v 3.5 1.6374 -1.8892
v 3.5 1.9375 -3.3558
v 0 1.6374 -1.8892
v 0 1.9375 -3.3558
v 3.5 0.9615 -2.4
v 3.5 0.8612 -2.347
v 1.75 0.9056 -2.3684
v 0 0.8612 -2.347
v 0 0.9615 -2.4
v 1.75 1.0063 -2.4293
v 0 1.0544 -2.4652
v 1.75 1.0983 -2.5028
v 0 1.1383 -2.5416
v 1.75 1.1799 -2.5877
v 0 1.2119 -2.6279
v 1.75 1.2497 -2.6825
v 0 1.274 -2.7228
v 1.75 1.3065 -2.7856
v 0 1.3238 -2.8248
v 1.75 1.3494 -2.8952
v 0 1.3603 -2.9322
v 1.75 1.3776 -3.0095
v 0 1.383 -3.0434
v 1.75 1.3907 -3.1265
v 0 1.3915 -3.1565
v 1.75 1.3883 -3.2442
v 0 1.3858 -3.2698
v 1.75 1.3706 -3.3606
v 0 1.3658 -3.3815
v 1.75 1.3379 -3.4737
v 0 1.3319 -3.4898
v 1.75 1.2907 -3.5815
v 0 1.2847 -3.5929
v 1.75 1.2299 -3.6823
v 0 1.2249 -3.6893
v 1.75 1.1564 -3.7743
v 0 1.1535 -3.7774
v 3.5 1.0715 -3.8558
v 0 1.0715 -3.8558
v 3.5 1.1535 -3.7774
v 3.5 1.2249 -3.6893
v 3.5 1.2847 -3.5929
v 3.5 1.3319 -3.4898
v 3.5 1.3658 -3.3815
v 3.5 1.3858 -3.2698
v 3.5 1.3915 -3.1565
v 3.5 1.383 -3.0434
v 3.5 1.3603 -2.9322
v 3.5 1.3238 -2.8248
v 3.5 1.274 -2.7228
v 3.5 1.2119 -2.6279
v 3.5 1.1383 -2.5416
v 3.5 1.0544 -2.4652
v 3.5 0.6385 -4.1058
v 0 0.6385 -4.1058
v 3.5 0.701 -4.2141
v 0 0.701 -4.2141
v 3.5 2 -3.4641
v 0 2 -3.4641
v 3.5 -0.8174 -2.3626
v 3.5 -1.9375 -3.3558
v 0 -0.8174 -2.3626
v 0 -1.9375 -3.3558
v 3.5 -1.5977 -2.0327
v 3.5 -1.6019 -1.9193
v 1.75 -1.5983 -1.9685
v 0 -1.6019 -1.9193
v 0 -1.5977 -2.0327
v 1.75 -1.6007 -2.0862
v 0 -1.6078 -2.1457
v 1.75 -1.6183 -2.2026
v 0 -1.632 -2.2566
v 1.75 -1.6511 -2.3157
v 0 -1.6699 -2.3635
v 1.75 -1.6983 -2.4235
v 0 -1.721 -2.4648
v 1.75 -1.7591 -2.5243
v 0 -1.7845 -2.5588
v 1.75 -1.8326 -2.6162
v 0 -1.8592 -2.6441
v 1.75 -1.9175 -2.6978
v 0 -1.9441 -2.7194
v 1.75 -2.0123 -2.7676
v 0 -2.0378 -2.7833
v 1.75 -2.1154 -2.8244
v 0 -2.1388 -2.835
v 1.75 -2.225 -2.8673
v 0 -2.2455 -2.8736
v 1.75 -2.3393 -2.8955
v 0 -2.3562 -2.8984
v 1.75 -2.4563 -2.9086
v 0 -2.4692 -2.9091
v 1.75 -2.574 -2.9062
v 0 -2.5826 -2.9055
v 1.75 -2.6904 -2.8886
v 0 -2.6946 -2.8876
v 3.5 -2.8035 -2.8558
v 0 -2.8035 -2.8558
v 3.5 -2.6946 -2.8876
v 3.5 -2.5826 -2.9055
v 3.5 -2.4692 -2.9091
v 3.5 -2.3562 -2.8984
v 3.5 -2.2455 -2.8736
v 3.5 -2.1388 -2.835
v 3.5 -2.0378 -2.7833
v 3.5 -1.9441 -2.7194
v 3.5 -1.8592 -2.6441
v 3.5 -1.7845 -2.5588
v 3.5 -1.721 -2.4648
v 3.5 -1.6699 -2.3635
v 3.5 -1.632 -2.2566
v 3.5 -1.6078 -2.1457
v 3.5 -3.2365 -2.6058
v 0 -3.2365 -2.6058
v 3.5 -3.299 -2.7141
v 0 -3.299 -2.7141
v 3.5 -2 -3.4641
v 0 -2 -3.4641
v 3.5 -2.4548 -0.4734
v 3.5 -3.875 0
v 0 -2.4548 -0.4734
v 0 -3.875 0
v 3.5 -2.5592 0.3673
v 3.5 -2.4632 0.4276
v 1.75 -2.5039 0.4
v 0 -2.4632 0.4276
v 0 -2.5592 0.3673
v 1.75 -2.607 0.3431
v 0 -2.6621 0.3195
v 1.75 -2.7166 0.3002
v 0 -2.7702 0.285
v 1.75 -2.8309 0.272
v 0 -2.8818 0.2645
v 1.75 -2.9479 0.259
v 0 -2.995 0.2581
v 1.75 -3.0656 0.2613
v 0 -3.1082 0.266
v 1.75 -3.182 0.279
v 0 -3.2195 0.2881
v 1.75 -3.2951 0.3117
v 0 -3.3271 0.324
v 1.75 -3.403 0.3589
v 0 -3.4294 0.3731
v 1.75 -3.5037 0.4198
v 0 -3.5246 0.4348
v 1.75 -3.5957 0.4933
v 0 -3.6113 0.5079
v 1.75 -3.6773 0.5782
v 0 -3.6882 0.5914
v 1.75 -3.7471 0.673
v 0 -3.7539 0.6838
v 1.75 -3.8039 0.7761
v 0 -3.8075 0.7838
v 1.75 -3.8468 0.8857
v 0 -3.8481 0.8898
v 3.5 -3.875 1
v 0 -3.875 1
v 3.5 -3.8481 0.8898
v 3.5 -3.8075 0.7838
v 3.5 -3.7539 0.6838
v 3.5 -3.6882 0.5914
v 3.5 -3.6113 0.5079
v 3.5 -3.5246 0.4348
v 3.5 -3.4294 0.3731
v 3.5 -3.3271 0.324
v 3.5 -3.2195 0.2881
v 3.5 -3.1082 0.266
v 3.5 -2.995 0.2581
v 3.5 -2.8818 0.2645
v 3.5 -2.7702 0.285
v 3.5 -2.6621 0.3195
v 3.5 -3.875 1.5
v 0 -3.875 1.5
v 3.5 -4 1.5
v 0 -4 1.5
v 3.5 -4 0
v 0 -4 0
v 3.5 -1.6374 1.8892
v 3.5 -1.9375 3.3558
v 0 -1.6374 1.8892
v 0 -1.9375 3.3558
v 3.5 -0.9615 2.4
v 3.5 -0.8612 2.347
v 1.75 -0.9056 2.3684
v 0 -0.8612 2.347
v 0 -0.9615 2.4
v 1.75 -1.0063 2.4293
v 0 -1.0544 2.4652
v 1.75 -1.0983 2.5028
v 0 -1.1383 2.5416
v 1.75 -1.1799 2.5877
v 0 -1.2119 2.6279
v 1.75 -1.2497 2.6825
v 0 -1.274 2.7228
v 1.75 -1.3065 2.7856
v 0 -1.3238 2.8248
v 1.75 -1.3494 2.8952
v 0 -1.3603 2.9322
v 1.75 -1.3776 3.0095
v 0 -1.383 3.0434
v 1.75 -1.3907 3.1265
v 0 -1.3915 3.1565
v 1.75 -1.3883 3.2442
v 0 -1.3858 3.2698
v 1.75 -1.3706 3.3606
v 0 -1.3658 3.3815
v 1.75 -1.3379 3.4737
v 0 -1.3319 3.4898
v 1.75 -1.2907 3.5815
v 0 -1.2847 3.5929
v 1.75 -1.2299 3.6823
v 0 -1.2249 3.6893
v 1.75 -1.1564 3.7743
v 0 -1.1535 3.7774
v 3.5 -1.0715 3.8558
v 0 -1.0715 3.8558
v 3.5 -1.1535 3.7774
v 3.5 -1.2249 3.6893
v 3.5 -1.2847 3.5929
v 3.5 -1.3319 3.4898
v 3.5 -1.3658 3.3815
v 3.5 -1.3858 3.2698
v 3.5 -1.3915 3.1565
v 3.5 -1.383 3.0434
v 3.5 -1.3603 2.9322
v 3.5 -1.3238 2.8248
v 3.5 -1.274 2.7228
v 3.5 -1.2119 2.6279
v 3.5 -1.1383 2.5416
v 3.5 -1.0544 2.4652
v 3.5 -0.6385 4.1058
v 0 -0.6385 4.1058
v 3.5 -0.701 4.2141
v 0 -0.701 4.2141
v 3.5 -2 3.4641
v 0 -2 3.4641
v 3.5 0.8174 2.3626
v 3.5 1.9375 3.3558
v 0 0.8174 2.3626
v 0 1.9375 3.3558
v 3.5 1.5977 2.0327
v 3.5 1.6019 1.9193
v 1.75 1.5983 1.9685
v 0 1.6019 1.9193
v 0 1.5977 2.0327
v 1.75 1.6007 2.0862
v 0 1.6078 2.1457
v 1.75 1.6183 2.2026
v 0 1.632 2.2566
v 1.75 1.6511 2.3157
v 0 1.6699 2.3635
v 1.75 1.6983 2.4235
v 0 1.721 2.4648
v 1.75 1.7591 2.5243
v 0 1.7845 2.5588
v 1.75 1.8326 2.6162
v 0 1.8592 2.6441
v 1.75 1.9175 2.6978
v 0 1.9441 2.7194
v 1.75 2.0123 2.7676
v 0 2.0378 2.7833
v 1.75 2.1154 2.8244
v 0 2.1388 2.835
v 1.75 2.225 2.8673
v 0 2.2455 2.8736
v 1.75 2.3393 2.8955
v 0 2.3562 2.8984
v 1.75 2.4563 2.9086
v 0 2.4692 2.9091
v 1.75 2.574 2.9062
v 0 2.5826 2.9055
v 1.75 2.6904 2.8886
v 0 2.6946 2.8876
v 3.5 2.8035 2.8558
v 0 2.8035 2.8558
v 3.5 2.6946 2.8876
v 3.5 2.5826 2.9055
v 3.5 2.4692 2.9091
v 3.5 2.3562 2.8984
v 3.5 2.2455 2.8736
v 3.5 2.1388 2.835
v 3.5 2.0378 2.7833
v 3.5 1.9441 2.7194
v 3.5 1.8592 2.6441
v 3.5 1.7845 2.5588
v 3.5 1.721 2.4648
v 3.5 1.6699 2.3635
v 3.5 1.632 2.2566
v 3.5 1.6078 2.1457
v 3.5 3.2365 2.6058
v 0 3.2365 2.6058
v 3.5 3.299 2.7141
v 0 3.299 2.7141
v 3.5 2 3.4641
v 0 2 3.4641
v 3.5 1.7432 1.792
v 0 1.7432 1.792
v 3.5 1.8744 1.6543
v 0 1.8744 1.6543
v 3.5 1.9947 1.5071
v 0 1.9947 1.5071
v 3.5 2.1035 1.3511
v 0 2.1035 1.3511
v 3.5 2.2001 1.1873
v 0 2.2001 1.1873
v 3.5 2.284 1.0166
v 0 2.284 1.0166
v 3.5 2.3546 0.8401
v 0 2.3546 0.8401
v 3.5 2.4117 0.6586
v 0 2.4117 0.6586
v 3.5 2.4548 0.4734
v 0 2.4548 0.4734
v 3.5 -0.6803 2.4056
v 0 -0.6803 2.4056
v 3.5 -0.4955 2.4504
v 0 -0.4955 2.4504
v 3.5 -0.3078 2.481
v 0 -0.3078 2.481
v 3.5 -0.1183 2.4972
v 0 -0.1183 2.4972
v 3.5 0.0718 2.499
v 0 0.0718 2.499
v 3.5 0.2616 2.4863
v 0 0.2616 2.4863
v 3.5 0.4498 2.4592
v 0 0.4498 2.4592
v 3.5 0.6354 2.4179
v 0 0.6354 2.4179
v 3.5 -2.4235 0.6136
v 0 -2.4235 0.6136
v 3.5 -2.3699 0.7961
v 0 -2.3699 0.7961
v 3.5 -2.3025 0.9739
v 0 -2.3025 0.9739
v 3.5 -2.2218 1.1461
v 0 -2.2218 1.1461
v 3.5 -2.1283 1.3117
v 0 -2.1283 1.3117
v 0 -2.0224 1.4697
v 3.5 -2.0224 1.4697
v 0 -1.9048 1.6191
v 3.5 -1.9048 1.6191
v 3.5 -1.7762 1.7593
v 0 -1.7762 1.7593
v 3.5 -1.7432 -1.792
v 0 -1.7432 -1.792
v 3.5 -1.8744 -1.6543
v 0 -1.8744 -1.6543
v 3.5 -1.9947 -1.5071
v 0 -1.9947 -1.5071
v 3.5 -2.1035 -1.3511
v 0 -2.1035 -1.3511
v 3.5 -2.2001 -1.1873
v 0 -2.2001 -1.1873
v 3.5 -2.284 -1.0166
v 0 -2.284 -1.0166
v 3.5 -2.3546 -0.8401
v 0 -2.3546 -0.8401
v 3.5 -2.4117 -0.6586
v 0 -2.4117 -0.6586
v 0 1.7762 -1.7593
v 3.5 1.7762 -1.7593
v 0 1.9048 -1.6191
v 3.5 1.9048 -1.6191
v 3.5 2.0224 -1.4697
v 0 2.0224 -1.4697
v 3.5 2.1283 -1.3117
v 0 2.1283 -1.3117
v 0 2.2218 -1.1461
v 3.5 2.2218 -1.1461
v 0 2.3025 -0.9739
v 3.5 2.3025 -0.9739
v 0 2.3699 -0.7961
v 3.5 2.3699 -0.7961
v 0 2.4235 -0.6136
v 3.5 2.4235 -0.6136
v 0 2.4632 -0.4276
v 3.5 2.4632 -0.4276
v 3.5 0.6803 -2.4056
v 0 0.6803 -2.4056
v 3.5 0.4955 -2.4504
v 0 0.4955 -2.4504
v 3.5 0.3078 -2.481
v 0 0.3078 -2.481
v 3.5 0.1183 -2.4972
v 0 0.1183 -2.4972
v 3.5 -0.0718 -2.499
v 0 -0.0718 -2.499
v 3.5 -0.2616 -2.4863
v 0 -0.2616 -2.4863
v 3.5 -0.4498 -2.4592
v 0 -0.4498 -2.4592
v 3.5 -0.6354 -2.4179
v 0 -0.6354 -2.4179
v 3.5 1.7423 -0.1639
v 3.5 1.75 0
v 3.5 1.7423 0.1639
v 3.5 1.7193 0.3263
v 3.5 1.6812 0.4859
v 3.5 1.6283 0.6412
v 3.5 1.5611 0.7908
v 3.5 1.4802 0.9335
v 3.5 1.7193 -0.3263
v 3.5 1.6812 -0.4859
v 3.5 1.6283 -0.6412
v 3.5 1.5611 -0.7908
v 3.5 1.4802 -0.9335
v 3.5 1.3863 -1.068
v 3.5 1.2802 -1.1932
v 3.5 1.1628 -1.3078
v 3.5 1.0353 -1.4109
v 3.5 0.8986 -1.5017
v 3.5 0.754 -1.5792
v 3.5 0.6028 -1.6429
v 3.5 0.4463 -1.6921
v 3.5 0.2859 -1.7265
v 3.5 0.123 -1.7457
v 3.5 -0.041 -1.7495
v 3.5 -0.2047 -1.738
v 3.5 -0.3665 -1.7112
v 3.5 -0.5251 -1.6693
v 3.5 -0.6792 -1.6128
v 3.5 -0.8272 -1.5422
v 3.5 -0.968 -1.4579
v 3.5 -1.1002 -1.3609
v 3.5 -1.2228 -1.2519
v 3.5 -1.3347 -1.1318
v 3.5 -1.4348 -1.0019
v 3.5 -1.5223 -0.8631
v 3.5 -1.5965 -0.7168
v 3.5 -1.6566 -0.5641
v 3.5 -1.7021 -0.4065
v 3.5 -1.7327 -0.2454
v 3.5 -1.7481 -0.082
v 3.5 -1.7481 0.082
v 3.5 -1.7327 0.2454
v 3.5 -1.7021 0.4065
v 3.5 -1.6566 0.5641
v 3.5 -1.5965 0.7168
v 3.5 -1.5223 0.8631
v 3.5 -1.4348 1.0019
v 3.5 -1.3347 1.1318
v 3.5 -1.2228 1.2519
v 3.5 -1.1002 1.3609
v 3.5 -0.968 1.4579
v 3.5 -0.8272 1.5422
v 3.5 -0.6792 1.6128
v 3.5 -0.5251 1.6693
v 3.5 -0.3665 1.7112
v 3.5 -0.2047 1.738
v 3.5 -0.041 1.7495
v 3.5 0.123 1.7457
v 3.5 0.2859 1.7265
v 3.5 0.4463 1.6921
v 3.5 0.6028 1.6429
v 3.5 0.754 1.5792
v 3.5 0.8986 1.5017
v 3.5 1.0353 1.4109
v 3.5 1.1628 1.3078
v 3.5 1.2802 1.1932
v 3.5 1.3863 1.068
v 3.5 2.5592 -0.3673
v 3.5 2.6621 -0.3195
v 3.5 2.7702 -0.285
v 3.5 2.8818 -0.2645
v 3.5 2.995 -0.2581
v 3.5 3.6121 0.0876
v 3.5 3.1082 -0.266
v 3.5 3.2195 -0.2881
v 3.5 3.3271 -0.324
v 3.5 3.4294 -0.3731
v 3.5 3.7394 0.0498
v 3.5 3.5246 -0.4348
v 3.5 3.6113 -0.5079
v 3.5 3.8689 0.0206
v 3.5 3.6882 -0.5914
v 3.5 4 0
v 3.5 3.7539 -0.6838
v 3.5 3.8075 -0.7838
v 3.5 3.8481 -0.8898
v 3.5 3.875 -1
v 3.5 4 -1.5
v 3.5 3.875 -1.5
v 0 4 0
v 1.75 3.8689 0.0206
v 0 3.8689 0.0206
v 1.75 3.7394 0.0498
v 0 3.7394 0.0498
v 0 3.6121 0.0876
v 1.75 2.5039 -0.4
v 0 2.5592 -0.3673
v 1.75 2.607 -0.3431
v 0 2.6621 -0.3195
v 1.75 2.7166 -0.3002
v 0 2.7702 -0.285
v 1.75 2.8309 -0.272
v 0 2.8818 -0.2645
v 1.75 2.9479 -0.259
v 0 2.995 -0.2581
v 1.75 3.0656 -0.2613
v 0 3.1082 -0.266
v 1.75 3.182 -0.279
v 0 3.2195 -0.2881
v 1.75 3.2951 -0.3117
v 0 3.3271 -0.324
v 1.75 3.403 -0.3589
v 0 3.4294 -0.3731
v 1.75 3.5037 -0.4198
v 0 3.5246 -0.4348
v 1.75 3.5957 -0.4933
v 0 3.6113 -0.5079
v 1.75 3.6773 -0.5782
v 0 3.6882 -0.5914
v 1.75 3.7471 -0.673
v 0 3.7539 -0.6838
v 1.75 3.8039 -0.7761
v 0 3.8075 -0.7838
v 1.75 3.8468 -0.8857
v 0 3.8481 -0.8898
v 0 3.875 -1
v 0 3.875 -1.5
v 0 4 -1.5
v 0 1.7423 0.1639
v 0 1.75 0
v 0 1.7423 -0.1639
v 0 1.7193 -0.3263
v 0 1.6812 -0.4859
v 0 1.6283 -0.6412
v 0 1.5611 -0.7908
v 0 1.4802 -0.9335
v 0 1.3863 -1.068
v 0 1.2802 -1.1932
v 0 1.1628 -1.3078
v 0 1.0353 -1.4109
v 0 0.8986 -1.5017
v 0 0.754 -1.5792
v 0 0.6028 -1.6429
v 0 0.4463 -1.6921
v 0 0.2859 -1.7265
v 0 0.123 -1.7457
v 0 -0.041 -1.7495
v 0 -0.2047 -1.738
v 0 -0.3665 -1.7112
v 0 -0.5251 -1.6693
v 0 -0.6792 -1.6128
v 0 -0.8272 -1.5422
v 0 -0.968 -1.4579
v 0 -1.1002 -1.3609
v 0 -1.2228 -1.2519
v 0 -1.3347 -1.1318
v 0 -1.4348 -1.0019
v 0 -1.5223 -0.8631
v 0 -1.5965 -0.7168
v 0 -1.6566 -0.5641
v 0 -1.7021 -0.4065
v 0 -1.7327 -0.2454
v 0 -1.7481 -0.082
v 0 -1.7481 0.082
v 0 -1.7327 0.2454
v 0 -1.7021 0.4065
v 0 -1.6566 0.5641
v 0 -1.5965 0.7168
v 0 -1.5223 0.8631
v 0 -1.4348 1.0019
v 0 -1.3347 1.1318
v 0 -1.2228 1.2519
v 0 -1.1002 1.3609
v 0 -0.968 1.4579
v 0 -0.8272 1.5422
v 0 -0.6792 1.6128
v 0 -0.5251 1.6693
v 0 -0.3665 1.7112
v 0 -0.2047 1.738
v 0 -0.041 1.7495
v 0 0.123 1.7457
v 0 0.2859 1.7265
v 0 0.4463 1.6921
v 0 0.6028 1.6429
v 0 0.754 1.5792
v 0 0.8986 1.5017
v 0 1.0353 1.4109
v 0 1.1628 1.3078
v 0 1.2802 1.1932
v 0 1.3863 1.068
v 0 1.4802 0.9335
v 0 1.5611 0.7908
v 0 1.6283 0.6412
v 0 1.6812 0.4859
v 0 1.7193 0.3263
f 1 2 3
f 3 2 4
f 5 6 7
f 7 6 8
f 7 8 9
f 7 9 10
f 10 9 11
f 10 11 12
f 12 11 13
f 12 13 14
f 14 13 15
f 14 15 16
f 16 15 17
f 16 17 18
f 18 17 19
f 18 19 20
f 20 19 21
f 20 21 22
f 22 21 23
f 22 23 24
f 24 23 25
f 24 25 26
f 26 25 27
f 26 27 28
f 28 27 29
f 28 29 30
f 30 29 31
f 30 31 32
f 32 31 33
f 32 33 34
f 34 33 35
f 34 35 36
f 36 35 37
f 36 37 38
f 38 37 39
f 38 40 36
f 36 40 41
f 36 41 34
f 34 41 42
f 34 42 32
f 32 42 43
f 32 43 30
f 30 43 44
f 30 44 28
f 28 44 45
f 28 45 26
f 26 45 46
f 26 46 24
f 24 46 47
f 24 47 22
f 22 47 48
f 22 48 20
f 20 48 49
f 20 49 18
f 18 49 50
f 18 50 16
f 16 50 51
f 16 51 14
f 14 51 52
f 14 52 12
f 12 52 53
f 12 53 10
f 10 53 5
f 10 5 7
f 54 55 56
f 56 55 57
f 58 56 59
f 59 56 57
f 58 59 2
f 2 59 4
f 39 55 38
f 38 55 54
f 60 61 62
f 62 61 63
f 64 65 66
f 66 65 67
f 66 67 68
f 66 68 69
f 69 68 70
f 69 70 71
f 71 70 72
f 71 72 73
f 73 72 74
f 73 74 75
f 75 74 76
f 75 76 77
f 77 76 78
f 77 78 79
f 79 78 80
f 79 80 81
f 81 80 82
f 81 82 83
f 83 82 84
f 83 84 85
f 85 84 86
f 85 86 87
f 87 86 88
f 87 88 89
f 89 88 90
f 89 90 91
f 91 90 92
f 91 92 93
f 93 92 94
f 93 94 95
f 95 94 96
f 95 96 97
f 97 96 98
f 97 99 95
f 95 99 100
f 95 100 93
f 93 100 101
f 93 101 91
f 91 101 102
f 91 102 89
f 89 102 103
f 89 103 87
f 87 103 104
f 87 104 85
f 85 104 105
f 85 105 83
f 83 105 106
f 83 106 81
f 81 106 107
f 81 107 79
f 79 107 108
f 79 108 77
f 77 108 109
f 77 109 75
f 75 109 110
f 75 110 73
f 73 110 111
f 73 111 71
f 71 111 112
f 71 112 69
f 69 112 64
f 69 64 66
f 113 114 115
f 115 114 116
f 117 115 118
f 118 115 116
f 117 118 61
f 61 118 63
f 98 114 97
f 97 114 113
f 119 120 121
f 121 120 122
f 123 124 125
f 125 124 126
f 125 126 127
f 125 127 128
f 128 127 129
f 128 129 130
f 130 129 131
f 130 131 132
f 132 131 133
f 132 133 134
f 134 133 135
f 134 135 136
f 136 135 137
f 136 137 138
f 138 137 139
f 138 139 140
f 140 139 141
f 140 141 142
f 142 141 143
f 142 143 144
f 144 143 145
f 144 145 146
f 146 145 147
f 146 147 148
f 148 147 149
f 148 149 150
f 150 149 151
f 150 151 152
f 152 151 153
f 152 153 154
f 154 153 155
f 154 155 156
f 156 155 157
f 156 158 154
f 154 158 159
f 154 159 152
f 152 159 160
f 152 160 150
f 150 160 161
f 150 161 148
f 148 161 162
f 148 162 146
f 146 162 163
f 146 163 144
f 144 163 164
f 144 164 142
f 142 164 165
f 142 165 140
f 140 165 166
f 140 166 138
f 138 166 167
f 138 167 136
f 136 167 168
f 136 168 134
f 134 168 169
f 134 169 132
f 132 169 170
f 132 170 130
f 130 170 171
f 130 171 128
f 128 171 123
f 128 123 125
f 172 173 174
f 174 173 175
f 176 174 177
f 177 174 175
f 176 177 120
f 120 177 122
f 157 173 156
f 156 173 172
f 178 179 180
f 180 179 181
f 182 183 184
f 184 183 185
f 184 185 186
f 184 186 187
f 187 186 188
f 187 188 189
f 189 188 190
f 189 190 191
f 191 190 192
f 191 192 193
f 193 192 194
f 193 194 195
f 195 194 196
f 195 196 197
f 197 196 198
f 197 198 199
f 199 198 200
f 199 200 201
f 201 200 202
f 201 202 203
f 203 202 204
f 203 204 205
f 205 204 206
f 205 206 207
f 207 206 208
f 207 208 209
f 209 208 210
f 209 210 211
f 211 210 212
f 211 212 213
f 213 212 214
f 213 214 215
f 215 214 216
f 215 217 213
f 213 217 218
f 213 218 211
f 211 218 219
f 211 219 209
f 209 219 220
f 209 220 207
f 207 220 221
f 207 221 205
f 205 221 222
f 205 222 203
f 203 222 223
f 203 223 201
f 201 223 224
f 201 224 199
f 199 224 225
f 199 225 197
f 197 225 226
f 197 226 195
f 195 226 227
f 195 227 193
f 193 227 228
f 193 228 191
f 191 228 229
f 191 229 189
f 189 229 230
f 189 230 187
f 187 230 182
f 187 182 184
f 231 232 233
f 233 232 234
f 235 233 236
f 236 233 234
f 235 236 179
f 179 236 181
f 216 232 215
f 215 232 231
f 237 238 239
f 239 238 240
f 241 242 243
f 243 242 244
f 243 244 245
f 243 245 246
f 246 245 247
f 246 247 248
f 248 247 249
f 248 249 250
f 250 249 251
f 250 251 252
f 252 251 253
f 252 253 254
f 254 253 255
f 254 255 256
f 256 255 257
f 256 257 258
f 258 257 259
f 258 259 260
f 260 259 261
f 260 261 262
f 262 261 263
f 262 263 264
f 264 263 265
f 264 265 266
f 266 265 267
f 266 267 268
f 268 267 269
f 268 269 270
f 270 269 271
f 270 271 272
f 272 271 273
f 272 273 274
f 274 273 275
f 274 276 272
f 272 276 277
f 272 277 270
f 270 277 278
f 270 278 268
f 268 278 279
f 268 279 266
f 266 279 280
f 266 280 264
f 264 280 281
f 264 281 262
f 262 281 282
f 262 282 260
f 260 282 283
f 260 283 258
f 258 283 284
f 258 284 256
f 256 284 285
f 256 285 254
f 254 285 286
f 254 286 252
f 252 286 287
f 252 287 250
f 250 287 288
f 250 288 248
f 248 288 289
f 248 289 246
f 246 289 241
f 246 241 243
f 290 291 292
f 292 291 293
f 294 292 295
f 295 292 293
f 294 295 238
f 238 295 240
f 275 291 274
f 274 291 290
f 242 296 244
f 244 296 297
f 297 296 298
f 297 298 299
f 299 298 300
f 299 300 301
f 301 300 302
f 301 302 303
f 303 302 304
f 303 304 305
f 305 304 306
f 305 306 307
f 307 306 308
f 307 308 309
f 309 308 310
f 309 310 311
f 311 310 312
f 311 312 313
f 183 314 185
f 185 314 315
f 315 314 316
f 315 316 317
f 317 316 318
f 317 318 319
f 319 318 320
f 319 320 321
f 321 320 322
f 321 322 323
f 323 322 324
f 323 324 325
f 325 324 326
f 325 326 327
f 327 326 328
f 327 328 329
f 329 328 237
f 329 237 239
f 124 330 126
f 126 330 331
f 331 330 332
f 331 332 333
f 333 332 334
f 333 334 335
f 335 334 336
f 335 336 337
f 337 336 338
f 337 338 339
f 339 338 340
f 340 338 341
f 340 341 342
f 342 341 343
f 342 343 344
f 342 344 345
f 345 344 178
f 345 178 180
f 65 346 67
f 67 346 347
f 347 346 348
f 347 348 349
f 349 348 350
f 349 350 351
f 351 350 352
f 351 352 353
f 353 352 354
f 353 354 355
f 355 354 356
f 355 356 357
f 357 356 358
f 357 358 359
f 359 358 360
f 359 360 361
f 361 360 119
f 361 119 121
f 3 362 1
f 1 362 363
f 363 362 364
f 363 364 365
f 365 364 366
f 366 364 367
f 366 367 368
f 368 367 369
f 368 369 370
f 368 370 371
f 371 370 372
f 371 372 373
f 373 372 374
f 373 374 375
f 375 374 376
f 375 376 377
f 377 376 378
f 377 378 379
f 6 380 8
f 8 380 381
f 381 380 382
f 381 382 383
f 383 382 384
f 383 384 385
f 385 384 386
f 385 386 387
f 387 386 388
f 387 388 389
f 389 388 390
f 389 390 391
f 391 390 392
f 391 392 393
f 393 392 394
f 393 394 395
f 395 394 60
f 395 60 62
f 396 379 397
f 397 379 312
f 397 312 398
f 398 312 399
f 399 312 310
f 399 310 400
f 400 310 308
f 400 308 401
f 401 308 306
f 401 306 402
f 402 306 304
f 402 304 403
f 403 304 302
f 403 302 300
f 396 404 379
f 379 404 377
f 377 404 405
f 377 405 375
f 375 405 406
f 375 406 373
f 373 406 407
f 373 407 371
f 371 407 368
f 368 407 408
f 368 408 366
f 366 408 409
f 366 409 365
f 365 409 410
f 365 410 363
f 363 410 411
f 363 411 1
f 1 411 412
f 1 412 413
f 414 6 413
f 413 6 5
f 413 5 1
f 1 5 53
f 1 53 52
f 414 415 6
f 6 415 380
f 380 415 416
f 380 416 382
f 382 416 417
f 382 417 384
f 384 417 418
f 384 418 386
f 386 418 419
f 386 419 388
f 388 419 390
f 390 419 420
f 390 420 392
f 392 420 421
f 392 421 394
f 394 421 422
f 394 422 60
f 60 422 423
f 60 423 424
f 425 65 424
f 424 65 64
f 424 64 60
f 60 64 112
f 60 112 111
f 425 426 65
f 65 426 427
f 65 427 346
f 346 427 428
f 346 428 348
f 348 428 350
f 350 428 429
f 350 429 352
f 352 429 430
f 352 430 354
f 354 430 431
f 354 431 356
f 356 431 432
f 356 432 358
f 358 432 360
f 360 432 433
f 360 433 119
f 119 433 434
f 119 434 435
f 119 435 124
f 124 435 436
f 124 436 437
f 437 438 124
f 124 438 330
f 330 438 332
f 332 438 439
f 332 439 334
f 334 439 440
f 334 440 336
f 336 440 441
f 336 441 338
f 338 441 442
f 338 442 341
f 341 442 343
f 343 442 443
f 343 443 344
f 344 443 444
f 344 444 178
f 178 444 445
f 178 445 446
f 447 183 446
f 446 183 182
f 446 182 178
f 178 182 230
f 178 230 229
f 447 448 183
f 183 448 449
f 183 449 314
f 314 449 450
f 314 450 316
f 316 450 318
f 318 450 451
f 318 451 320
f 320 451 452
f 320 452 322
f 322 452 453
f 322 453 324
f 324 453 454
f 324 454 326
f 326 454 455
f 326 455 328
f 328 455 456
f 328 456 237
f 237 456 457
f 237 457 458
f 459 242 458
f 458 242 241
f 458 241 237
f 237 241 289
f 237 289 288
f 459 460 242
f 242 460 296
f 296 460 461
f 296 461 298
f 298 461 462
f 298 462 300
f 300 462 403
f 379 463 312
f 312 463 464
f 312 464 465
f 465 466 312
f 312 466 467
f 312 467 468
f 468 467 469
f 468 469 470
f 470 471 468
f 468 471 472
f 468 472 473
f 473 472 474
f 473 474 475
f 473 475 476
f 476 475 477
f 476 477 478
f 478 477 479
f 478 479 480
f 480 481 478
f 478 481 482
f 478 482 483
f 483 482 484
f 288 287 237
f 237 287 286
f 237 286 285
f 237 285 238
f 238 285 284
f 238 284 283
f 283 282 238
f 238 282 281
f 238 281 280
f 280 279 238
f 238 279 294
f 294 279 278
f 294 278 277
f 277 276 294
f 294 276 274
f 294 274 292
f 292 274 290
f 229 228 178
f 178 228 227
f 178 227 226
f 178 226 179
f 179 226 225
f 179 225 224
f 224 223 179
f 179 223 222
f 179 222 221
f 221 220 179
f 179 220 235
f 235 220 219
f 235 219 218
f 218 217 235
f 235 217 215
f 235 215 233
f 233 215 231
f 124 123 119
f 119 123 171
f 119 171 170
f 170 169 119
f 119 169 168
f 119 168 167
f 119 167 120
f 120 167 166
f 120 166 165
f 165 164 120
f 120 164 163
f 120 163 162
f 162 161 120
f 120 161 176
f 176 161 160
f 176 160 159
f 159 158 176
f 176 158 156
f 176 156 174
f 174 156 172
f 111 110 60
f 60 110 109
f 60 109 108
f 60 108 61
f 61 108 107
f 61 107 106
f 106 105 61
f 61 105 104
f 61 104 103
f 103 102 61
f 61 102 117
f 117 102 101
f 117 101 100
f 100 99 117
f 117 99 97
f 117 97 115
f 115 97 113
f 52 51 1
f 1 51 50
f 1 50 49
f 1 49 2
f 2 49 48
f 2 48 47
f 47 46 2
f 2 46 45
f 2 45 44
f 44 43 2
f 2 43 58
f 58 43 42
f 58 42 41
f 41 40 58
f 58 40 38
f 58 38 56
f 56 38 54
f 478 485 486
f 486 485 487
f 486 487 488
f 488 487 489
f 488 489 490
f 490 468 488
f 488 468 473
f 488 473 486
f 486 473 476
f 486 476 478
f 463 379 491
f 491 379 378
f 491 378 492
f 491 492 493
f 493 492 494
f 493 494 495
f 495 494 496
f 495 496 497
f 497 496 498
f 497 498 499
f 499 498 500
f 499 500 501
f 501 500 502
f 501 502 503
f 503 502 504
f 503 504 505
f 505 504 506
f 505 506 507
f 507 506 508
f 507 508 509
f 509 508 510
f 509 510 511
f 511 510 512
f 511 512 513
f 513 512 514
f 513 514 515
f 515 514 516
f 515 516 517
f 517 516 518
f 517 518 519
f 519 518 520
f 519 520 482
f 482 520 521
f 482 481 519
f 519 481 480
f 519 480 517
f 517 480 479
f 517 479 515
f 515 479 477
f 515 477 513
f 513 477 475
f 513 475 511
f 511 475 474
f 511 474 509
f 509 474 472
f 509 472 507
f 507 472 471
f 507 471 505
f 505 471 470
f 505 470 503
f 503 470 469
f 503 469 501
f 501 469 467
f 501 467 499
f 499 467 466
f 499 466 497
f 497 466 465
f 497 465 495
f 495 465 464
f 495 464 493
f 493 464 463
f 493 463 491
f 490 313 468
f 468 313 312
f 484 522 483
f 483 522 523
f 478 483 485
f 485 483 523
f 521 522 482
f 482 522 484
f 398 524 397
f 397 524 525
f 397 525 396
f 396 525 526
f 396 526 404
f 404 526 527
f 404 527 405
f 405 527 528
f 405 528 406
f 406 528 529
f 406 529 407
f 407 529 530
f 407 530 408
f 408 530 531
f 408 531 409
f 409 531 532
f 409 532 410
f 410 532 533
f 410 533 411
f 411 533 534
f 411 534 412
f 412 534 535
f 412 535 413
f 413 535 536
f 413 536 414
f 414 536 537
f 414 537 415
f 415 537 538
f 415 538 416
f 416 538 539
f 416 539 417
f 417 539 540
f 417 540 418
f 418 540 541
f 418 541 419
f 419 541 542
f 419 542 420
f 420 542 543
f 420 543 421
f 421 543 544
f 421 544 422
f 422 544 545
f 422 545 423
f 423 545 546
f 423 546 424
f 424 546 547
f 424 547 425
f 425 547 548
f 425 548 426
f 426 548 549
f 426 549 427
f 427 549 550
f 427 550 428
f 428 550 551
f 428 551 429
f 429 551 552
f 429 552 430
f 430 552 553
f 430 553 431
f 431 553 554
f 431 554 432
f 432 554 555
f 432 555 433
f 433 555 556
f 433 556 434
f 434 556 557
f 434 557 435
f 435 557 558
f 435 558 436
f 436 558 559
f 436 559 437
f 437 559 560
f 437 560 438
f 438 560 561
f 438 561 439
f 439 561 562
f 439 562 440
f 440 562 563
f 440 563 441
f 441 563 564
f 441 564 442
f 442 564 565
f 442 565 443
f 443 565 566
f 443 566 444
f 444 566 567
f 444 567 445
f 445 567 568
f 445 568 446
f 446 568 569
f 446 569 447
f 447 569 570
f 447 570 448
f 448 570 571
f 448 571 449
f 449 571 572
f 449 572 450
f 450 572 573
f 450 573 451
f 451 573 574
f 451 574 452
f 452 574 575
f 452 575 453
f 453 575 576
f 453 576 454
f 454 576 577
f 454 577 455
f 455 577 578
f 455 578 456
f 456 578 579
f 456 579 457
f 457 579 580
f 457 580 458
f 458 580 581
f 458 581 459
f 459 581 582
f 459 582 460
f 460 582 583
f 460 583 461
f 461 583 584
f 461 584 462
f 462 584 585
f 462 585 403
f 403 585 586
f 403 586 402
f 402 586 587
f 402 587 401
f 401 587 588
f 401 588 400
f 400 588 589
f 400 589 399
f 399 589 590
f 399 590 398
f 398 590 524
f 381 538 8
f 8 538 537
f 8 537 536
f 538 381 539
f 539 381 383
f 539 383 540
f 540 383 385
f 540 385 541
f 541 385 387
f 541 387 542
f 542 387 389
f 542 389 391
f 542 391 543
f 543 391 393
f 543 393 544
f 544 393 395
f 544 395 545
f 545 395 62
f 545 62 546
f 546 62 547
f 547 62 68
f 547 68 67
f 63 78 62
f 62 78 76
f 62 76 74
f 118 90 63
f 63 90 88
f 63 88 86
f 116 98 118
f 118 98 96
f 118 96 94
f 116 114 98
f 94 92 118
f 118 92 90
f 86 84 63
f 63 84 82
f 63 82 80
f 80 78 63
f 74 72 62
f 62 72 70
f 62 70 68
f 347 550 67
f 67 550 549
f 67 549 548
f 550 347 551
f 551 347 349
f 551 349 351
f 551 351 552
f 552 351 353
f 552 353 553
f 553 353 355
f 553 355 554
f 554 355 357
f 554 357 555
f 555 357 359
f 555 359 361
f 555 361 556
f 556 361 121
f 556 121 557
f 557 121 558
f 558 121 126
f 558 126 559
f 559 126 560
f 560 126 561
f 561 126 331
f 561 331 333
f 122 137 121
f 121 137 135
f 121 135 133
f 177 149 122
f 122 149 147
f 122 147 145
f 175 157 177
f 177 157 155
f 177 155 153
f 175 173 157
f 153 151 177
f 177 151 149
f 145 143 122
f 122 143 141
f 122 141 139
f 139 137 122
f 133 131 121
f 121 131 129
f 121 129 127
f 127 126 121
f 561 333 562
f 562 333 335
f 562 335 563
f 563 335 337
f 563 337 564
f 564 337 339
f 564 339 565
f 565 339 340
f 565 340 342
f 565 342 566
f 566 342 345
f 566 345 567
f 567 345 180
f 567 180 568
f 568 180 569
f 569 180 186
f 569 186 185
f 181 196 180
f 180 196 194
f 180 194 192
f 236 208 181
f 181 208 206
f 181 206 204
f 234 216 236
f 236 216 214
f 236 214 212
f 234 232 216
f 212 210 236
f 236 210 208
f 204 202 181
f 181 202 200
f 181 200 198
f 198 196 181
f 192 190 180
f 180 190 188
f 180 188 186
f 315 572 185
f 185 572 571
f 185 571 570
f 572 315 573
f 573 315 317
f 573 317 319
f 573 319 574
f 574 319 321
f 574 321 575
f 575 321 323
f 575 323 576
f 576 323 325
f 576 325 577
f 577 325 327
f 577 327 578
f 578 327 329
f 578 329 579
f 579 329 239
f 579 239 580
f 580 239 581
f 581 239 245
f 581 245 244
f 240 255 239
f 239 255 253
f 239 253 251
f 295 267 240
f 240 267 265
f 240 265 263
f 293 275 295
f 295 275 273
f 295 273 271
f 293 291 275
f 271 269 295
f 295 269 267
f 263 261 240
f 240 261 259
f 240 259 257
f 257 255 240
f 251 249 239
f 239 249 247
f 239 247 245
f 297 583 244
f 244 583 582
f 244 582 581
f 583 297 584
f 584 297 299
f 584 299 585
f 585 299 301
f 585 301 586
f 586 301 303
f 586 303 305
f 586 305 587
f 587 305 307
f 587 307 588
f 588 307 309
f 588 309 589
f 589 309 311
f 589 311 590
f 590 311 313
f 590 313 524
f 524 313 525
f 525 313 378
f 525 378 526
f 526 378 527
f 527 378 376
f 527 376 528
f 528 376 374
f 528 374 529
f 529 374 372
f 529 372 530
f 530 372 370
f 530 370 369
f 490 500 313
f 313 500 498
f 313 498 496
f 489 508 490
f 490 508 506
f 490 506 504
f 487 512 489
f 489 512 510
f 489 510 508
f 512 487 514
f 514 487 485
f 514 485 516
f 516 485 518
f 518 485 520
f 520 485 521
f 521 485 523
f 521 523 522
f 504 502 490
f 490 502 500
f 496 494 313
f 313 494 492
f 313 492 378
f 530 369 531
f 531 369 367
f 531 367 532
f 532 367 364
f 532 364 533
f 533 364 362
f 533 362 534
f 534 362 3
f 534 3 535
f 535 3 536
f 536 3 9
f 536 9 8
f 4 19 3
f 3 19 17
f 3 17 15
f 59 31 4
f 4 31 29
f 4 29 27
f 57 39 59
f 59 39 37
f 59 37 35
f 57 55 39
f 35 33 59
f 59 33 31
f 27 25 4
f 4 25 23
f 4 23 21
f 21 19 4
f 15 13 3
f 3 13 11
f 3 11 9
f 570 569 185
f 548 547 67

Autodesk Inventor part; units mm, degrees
ref_plane "YZ Plane" through (0, 0, 0) normal (1, 0, 0) x (0, 1, 0)
ref_plane "XZ Plane" through (0, 0, 0) normal (0, 1, 0) x (-1, 0, 0)
ref_plane "XY Plane" through (0, 0, 0) normal (0, 0, 1) x (1, 0, 0)
sketch "Sketch1" plane through (0, 0, 0) normal (1, 0, 0) x (0, 1, 0)
  circle A0 centre (0, 0) radius 1.75
  circle A1 centre (0, 0) radius 2.5
  dimension "d0" = 3.5
  dimension "d1" = 5
extrude "Extrusion1" add sketch "Sketch1" along normal blind 3.5
sketch "Sketch2" plane through (3.5, 0, 0) normal (1, 0, 0) x (0, 0, -1)
  circle A0 centre (0, 0) radius 2.5 construction
  line L0 (0, 2.5) -> (0, 2.375) construction
  line L1 (0, 2.375) -> (0.25, 2.375) construction
  line L2 (0.25, 2.375) -> (-0.25, 2.375) construction
  line L3 (-0.25, 2.375) -> (0.25, 2.375)
  line L4 (0, 2.375) -> (-0.5, 2.375)
  line L5 (-0.5, 2.375) -> (0.5, 2.375)
  line L6 (0, 2.375) -> (0, 3.875) construction
  line L7 (0, 3.875) -> (1, 3.875) construction
  line L8 (0, 3.875) -> (1, 3.875)
  line L9 (0, 3.875) -> (-0.5, 2.375)
  arc A1 (1, 3.875) -> (0.5, 2.375) centre (1.158, 2.989) ccw
  line L10 (0, 3.875) -> (1.5, 3.875)
  line L11 (1.5, 3.875) -> (1.5, 4)
  line L12 (1.5, 4) -> (0, 4)
  line L13 (0, 4) -> (0, 3.875)
  dimension "d4" = 0.125
  dimension "d5" = 0.25
  dimension "d6" = 0.5
  dimension "d11" = 0.5
  dimension "d12" = 1
  dimension "d14" = 1
  dimension "d15" = 0.9
  dimension "d16" = 1.5
  dimension "d17" = 0.125
extrude "Extrusion2" add sketch "Sketch2" against normal blind 3.5
fillet "Fillet1" radius 2 1 edges at (1.75, 3.875, 0)
pattern_circular "Circular Pattern1" count 6 over 360 about axis through (0, 0, 0) along (1, 0, 0) of "Extrusion2"
properties part number "mtv_gear6_1-15"
